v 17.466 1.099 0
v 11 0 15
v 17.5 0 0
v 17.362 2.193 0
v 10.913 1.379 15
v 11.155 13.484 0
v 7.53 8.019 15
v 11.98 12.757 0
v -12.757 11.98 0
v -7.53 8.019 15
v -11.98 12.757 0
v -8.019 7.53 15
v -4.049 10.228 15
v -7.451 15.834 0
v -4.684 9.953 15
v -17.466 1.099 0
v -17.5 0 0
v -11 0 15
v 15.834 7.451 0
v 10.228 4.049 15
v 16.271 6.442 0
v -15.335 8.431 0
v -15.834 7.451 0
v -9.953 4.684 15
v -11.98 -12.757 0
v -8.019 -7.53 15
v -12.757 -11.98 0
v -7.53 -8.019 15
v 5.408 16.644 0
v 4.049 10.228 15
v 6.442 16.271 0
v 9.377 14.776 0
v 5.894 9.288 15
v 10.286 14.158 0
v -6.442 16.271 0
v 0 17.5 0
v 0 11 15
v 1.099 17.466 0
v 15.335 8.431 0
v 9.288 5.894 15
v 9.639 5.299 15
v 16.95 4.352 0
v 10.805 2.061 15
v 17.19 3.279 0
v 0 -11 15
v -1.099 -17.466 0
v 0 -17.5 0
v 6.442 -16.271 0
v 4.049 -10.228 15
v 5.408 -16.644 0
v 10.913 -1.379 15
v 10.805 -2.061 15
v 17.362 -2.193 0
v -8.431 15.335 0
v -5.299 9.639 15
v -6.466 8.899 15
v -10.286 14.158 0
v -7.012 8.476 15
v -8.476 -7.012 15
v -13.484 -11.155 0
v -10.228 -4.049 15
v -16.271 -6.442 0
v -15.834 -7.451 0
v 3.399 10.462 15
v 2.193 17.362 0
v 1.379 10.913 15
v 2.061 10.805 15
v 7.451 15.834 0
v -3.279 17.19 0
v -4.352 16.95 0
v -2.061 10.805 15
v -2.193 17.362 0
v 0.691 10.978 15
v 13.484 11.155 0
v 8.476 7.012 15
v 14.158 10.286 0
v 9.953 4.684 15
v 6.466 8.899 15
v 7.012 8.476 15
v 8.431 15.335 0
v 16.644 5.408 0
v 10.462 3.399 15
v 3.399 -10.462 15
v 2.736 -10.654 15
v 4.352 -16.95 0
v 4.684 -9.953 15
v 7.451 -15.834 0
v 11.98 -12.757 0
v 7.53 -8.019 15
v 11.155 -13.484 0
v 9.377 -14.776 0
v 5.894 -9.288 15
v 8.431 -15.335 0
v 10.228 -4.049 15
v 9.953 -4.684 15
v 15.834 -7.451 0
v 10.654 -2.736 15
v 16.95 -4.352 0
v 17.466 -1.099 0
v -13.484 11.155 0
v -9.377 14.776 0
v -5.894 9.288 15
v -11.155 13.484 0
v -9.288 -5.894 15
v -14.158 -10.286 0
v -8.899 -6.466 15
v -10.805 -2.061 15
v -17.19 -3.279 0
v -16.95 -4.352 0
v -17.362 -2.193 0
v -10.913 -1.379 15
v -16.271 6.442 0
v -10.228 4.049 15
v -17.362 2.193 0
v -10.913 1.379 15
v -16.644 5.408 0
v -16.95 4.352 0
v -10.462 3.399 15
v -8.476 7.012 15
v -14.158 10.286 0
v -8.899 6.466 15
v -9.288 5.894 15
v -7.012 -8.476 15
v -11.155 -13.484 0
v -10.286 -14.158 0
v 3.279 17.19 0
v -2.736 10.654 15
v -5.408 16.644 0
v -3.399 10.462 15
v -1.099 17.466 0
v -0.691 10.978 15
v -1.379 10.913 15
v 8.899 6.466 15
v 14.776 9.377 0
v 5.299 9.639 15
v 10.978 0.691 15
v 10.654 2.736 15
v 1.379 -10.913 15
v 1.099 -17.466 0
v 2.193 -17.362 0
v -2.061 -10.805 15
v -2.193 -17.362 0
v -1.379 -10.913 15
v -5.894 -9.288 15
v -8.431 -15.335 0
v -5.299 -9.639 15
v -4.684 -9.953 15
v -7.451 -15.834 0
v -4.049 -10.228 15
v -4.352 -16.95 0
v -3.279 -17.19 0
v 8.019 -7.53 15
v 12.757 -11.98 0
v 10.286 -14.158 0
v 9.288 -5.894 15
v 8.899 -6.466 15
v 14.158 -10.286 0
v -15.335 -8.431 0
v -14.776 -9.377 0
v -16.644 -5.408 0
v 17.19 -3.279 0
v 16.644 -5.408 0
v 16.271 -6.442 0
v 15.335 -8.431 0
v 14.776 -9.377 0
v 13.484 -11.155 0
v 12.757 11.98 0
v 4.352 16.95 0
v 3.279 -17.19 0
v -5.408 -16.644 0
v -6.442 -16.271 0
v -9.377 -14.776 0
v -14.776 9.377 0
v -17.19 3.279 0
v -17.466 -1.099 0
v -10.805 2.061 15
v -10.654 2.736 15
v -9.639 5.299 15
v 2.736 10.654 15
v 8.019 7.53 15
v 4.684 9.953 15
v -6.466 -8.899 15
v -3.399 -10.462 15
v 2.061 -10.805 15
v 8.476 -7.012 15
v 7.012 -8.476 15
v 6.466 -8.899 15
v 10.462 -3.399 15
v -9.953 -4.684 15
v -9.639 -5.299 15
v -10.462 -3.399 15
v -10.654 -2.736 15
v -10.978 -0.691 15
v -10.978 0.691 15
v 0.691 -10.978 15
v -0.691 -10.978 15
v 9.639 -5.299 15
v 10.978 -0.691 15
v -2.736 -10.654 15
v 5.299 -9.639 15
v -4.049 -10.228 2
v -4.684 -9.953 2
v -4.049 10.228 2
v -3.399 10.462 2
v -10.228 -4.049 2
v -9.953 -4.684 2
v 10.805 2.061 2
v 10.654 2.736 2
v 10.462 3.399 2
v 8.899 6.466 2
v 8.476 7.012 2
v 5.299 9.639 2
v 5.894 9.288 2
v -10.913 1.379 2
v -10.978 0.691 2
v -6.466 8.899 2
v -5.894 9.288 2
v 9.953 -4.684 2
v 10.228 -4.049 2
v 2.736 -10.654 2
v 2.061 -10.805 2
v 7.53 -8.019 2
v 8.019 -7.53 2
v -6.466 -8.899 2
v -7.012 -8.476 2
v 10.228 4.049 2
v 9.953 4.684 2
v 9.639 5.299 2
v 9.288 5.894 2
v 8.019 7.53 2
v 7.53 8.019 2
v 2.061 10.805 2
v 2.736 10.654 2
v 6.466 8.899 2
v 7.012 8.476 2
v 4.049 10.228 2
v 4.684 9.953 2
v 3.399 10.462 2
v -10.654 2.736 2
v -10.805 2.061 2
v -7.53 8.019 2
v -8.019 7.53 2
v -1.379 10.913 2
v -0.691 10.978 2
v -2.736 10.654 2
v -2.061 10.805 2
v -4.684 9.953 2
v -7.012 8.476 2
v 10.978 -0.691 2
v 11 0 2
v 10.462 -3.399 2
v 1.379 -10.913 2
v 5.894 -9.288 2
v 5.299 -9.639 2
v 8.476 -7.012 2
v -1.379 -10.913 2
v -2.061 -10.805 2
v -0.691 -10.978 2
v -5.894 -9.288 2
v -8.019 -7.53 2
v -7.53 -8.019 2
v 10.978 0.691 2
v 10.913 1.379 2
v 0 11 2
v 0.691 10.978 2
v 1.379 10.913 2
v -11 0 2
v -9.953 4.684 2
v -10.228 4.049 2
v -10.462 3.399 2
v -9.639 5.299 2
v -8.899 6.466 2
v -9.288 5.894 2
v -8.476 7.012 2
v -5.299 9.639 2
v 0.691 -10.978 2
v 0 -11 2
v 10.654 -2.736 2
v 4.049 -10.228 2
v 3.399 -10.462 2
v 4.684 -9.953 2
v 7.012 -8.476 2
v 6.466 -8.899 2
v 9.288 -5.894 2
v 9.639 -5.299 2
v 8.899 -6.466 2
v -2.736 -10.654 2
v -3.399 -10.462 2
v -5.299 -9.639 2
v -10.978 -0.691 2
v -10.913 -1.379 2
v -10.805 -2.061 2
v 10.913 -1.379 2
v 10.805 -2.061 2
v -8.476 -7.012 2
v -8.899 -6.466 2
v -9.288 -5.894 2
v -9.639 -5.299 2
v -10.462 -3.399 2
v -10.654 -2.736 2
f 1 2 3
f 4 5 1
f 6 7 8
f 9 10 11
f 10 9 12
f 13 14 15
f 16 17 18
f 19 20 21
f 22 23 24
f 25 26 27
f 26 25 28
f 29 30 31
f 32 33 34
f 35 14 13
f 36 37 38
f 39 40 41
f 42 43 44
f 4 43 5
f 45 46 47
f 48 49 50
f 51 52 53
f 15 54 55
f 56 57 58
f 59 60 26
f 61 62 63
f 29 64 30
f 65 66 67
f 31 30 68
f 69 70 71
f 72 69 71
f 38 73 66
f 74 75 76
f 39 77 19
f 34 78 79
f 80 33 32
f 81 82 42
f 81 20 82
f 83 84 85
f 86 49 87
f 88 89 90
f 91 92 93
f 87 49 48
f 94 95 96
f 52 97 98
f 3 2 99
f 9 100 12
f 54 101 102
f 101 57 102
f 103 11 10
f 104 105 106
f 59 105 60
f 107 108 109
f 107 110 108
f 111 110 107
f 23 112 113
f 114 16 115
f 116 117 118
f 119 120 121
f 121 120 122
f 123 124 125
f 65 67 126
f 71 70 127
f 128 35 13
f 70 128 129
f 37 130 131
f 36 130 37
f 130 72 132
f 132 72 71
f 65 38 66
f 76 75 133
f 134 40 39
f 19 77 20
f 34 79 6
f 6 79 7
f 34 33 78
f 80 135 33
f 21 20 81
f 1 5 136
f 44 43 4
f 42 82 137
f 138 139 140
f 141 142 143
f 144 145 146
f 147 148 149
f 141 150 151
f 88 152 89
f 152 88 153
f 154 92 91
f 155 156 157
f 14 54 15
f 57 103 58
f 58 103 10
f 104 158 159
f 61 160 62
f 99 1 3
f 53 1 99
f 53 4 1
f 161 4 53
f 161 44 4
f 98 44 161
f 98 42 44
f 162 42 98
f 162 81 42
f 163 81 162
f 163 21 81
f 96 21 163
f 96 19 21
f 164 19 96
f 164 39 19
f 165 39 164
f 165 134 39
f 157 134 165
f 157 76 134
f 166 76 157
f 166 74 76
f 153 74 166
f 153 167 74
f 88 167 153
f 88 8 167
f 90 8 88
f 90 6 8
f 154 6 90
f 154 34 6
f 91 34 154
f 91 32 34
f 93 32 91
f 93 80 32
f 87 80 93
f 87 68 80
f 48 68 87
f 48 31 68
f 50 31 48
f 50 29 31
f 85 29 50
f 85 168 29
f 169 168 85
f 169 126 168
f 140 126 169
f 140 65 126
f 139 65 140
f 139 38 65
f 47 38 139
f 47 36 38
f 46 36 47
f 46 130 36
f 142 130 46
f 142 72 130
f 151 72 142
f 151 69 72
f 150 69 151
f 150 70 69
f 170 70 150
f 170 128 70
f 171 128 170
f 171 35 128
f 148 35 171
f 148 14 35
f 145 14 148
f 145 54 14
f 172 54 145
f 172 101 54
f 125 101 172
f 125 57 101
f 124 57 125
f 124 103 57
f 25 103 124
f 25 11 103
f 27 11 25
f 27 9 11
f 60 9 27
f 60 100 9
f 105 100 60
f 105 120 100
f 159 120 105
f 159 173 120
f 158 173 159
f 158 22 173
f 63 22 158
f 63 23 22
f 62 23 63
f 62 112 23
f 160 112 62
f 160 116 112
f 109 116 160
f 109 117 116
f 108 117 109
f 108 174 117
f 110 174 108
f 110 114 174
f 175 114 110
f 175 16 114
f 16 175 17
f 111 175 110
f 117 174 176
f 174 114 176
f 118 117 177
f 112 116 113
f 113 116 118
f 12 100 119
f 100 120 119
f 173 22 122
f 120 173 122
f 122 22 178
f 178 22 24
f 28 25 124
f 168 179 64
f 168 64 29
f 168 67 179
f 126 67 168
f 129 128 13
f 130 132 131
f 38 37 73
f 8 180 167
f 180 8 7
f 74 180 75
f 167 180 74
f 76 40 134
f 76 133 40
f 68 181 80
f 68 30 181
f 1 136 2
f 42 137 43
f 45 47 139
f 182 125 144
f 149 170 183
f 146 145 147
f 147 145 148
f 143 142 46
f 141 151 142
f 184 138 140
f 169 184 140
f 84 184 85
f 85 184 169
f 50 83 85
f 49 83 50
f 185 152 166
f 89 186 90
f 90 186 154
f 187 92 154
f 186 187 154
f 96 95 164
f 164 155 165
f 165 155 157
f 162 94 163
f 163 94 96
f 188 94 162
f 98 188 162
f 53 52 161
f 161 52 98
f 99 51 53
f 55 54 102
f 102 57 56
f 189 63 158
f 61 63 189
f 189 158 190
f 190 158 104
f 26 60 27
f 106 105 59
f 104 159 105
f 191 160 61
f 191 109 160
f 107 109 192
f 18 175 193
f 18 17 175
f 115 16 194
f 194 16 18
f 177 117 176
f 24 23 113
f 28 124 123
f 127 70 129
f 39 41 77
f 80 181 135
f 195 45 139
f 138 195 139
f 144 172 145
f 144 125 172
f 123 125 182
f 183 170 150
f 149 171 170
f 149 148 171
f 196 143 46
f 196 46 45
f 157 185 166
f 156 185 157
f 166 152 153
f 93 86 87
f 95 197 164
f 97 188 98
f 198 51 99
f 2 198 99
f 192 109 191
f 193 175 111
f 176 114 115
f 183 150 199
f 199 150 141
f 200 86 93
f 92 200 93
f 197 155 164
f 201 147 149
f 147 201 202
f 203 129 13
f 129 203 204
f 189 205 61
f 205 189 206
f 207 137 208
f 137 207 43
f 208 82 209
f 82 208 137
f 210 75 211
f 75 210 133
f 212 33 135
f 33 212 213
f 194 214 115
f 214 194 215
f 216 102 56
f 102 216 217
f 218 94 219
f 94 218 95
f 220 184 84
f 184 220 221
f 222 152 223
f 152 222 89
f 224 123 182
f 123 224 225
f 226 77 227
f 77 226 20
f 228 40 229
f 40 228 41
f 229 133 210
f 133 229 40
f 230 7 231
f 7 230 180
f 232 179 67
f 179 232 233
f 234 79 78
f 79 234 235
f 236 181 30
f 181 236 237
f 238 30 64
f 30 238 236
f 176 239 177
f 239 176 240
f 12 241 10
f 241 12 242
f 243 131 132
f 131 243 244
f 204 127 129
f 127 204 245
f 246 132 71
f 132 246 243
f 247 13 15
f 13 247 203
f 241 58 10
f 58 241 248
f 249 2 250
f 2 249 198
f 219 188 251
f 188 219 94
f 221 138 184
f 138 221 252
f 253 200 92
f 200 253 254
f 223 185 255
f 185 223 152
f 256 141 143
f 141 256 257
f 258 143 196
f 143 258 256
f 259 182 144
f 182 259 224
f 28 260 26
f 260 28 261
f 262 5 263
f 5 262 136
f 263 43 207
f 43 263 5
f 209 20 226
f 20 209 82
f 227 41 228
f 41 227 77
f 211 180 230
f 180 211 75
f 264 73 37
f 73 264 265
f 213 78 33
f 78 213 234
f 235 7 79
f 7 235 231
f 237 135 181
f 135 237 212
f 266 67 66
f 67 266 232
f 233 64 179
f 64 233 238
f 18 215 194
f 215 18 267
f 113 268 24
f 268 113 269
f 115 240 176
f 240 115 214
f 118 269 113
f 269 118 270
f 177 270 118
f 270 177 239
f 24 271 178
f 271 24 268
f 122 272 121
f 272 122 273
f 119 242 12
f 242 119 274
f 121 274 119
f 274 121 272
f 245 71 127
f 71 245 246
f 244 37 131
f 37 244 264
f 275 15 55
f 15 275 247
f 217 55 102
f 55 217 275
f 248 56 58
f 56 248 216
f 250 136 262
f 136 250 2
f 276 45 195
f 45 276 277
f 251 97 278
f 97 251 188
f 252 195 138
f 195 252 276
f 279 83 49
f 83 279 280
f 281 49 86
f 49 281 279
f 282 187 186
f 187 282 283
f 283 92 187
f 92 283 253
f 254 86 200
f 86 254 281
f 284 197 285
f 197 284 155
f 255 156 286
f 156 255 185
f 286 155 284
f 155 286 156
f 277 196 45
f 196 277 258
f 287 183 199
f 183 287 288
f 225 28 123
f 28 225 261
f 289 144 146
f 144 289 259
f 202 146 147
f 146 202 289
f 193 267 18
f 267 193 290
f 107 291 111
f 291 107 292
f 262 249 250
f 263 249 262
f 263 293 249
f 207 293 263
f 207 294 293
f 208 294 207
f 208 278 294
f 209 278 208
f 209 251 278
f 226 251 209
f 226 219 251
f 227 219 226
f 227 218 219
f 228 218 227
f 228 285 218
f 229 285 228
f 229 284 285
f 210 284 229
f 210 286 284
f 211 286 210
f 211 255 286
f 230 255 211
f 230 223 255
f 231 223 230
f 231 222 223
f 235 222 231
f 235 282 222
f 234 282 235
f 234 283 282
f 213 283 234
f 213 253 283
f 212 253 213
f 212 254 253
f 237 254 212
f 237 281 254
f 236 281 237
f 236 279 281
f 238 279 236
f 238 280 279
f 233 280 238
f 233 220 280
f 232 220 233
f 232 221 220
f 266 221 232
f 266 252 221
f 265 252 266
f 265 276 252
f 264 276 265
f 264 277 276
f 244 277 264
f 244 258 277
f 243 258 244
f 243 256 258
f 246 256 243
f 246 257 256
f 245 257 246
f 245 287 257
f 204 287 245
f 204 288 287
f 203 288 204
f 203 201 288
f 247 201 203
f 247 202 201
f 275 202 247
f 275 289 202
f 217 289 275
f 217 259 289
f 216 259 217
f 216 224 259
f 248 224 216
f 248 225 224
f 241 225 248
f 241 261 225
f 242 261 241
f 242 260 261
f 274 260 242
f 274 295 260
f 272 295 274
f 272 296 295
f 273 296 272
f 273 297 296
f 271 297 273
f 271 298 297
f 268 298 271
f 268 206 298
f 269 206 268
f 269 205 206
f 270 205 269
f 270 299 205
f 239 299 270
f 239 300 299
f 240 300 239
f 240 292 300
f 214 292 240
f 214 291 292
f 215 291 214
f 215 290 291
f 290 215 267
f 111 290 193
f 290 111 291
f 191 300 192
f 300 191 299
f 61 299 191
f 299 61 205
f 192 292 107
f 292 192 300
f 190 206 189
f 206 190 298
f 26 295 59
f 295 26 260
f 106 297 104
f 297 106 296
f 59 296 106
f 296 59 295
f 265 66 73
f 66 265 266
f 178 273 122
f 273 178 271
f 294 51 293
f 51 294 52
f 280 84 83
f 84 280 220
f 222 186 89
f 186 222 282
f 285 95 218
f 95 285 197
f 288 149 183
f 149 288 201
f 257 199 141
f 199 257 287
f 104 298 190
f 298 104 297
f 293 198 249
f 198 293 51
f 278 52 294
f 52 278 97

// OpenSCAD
//--------------------------------------------------------------
// Name: Подставка для цилиндрического повербанка. PwbStand.
// Version: 1.7
// Purpose: Замок.
// Author: Evgeny Klepikov
// E-mail: klek07@ya.ru
//
// Created: 25.09.2017
// Updated: 26.09.2017
// Copyright: (c) 2017 WildFox24
// Licence: GPL v3
//--------------------------------------------------------------

difference() {
    translate([0,0,0]) cylinder(h=15, d1=35, d2=22, $fn=100);
    translate([0,0,2]) cylinder(h=16, d=22, $fn=100);
}
